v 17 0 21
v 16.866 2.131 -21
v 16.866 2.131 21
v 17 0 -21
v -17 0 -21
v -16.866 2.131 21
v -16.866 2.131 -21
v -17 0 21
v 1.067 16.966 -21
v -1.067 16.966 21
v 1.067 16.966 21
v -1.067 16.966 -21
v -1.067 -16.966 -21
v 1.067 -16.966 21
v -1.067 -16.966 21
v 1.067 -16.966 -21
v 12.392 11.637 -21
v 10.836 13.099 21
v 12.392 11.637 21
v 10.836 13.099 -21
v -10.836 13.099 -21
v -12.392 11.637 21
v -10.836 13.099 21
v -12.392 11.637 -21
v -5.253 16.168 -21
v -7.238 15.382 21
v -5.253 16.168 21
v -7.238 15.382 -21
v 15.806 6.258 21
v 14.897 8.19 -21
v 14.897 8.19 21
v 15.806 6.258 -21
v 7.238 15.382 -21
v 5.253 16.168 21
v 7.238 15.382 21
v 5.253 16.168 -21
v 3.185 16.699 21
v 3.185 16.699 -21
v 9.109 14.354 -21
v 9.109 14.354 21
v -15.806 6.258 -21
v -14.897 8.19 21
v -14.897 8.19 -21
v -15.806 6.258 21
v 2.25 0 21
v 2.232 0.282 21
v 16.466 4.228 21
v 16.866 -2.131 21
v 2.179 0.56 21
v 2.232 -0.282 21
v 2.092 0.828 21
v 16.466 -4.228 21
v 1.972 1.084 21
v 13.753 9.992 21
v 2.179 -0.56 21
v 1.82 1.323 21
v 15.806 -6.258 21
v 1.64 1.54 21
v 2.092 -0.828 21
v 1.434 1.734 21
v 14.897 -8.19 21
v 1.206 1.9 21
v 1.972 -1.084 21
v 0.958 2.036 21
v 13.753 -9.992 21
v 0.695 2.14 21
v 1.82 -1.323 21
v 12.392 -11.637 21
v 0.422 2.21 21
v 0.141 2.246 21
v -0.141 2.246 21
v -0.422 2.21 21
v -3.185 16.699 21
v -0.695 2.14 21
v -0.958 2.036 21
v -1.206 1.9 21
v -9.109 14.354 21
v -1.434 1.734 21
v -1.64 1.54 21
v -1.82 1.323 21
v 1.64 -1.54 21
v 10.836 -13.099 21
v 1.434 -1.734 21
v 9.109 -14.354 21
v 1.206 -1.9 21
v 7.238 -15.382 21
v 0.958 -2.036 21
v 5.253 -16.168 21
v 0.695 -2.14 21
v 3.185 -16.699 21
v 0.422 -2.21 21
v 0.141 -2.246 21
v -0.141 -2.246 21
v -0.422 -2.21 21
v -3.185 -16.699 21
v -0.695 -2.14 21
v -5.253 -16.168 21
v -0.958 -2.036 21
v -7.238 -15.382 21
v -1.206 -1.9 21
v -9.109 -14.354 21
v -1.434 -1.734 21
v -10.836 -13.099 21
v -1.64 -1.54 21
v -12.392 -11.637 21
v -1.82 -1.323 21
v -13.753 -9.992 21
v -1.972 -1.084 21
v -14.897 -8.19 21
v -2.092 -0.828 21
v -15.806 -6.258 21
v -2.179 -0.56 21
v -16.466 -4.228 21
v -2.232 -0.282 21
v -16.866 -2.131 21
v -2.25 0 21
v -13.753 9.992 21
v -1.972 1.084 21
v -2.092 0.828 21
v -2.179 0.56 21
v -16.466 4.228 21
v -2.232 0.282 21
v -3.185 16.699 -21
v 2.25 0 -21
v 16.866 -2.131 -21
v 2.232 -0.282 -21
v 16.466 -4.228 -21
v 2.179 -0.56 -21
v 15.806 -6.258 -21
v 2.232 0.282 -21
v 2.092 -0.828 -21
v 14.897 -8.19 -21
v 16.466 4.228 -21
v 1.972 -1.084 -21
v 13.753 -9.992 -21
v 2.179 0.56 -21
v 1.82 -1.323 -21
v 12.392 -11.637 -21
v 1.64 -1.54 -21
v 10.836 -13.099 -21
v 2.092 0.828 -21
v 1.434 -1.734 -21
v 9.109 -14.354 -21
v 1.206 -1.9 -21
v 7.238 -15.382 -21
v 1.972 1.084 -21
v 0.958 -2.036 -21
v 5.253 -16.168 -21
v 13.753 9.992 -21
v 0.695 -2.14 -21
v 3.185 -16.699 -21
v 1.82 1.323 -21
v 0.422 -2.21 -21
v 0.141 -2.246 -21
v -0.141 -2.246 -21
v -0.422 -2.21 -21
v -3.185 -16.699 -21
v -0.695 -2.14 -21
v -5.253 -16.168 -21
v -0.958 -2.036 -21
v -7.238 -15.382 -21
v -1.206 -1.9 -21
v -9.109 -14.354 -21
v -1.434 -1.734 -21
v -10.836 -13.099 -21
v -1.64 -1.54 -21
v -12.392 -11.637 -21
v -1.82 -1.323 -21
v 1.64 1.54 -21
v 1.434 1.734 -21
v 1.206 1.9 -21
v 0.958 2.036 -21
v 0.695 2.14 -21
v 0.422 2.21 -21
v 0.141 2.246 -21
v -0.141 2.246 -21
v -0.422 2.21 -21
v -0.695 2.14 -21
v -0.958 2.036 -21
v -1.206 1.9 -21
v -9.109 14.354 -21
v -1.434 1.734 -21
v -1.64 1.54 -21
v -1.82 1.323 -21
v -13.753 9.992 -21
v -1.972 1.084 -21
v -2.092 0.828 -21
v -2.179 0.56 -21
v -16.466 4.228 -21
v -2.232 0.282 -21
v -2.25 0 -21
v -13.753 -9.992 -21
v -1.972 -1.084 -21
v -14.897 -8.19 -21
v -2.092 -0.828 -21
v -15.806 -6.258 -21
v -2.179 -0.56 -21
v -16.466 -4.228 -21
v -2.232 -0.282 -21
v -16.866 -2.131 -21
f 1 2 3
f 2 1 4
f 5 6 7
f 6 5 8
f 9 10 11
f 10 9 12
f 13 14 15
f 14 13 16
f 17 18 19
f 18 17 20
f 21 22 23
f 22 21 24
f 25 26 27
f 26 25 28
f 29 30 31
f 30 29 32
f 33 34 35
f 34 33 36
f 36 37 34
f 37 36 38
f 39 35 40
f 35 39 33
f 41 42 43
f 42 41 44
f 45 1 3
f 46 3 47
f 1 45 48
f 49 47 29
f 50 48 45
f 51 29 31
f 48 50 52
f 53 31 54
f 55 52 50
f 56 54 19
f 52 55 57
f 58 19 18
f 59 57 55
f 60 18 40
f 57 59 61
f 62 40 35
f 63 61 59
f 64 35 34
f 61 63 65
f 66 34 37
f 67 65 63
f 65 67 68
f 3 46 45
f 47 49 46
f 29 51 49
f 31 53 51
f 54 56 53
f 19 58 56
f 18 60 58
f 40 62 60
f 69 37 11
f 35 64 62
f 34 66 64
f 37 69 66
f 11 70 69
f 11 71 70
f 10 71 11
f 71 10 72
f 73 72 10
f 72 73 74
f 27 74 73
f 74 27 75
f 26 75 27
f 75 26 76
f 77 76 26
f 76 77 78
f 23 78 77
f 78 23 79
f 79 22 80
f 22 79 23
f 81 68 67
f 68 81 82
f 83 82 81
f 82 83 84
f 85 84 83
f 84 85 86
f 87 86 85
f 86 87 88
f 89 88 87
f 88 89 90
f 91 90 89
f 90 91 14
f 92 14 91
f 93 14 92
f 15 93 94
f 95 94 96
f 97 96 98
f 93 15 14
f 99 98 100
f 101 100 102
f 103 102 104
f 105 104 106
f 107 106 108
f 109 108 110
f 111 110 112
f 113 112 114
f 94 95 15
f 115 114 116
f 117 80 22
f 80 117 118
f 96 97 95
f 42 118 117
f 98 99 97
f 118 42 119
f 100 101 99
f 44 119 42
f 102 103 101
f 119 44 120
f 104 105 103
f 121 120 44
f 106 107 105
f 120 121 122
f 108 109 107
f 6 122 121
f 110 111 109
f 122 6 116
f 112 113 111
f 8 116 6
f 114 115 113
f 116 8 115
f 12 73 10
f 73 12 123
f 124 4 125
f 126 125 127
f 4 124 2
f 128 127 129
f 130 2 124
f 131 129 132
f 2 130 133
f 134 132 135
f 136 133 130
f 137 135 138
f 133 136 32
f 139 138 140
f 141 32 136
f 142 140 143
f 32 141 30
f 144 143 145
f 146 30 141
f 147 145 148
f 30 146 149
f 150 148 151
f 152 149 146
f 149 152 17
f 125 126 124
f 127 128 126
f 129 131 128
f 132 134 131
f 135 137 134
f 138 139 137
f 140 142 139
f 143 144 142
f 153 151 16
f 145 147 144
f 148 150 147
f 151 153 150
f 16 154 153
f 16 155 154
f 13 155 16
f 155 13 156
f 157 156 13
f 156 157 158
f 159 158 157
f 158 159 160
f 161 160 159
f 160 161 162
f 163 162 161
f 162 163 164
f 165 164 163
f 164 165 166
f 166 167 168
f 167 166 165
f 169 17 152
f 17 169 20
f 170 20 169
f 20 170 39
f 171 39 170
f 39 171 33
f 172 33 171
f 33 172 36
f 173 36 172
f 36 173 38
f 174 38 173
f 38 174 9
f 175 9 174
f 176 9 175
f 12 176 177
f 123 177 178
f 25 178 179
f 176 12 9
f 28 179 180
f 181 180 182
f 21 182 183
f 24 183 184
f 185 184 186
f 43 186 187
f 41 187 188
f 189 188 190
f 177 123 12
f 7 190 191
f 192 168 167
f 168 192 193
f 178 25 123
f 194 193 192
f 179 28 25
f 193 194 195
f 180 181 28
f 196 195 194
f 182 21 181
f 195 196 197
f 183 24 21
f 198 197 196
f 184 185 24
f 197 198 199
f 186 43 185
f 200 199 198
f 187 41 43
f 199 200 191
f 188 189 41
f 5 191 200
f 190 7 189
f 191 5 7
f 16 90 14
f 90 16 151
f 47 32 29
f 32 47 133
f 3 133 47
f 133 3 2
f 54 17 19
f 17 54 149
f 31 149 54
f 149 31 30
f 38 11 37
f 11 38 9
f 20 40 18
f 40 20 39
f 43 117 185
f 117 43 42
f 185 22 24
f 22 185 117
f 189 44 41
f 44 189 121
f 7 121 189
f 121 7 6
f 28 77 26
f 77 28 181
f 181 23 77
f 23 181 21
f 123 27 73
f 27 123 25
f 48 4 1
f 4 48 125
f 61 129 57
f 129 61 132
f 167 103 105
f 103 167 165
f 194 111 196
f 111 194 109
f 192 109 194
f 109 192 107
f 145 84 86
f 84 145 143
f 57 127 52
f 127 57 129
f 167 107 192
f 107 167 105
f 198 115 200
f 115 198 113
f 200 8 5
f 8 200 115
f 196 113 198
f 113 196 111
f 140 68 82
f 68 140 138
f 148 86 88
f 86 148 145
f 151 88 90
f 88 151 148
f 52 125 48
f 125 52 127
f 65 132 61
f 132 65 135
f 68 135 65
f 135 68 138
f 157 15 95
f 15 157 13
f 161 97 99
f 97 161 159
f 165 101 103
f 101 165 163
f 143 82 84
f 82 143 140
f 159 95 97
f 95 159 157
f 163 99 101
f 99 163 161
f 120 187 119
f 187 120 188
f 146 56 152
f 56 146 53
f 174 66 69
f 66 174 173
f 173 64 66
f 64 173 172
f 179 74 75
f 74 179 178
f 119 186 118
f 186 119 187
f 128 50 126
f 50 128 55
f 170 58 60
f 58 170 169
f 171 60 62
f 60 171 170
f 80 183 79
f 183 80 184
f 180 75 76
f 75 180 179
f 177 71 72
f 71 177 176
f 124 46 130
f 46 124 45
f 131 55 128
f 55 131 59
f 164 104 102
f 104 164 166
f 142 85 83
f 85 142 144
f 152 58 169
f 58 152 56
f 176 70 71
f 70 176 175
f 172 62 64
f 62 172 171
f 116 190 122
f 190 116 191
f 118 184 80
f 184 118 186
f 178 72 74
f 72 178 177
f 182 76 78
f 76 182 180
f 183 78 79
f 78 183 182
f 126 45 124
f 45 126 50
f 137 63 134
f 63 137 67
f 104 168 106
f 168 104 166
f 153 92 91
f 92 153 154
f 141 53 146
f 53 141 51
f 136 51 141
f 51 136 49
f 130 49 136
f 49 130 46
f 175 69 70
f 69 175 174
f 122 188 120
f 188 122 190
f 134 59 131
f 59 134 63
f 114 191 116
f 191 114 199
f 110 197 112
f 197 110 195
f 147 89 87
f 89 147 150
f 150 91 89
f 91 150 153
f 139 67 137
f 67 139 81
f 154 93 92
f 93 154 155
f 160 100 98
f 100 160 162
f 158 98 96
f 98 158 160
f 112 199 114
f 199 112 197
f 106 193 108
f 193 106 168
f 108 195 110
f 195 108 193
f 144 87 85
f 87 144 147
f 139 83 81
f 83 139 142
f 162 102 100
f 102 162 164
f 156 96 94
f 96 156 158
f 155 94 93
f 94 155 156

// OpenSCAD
$fn = 50;


difference() {
	union() {
		translate(v = [0, 0, -21.0000000000]) {
			cylinder(h = 42, r = 17.0000000000);
		}
	}
	union() {
		translate(v = [0, 0, -100.0000000000]) {
			cylinder(h = 200, r = 2.2500000000);
		}
	}
}
